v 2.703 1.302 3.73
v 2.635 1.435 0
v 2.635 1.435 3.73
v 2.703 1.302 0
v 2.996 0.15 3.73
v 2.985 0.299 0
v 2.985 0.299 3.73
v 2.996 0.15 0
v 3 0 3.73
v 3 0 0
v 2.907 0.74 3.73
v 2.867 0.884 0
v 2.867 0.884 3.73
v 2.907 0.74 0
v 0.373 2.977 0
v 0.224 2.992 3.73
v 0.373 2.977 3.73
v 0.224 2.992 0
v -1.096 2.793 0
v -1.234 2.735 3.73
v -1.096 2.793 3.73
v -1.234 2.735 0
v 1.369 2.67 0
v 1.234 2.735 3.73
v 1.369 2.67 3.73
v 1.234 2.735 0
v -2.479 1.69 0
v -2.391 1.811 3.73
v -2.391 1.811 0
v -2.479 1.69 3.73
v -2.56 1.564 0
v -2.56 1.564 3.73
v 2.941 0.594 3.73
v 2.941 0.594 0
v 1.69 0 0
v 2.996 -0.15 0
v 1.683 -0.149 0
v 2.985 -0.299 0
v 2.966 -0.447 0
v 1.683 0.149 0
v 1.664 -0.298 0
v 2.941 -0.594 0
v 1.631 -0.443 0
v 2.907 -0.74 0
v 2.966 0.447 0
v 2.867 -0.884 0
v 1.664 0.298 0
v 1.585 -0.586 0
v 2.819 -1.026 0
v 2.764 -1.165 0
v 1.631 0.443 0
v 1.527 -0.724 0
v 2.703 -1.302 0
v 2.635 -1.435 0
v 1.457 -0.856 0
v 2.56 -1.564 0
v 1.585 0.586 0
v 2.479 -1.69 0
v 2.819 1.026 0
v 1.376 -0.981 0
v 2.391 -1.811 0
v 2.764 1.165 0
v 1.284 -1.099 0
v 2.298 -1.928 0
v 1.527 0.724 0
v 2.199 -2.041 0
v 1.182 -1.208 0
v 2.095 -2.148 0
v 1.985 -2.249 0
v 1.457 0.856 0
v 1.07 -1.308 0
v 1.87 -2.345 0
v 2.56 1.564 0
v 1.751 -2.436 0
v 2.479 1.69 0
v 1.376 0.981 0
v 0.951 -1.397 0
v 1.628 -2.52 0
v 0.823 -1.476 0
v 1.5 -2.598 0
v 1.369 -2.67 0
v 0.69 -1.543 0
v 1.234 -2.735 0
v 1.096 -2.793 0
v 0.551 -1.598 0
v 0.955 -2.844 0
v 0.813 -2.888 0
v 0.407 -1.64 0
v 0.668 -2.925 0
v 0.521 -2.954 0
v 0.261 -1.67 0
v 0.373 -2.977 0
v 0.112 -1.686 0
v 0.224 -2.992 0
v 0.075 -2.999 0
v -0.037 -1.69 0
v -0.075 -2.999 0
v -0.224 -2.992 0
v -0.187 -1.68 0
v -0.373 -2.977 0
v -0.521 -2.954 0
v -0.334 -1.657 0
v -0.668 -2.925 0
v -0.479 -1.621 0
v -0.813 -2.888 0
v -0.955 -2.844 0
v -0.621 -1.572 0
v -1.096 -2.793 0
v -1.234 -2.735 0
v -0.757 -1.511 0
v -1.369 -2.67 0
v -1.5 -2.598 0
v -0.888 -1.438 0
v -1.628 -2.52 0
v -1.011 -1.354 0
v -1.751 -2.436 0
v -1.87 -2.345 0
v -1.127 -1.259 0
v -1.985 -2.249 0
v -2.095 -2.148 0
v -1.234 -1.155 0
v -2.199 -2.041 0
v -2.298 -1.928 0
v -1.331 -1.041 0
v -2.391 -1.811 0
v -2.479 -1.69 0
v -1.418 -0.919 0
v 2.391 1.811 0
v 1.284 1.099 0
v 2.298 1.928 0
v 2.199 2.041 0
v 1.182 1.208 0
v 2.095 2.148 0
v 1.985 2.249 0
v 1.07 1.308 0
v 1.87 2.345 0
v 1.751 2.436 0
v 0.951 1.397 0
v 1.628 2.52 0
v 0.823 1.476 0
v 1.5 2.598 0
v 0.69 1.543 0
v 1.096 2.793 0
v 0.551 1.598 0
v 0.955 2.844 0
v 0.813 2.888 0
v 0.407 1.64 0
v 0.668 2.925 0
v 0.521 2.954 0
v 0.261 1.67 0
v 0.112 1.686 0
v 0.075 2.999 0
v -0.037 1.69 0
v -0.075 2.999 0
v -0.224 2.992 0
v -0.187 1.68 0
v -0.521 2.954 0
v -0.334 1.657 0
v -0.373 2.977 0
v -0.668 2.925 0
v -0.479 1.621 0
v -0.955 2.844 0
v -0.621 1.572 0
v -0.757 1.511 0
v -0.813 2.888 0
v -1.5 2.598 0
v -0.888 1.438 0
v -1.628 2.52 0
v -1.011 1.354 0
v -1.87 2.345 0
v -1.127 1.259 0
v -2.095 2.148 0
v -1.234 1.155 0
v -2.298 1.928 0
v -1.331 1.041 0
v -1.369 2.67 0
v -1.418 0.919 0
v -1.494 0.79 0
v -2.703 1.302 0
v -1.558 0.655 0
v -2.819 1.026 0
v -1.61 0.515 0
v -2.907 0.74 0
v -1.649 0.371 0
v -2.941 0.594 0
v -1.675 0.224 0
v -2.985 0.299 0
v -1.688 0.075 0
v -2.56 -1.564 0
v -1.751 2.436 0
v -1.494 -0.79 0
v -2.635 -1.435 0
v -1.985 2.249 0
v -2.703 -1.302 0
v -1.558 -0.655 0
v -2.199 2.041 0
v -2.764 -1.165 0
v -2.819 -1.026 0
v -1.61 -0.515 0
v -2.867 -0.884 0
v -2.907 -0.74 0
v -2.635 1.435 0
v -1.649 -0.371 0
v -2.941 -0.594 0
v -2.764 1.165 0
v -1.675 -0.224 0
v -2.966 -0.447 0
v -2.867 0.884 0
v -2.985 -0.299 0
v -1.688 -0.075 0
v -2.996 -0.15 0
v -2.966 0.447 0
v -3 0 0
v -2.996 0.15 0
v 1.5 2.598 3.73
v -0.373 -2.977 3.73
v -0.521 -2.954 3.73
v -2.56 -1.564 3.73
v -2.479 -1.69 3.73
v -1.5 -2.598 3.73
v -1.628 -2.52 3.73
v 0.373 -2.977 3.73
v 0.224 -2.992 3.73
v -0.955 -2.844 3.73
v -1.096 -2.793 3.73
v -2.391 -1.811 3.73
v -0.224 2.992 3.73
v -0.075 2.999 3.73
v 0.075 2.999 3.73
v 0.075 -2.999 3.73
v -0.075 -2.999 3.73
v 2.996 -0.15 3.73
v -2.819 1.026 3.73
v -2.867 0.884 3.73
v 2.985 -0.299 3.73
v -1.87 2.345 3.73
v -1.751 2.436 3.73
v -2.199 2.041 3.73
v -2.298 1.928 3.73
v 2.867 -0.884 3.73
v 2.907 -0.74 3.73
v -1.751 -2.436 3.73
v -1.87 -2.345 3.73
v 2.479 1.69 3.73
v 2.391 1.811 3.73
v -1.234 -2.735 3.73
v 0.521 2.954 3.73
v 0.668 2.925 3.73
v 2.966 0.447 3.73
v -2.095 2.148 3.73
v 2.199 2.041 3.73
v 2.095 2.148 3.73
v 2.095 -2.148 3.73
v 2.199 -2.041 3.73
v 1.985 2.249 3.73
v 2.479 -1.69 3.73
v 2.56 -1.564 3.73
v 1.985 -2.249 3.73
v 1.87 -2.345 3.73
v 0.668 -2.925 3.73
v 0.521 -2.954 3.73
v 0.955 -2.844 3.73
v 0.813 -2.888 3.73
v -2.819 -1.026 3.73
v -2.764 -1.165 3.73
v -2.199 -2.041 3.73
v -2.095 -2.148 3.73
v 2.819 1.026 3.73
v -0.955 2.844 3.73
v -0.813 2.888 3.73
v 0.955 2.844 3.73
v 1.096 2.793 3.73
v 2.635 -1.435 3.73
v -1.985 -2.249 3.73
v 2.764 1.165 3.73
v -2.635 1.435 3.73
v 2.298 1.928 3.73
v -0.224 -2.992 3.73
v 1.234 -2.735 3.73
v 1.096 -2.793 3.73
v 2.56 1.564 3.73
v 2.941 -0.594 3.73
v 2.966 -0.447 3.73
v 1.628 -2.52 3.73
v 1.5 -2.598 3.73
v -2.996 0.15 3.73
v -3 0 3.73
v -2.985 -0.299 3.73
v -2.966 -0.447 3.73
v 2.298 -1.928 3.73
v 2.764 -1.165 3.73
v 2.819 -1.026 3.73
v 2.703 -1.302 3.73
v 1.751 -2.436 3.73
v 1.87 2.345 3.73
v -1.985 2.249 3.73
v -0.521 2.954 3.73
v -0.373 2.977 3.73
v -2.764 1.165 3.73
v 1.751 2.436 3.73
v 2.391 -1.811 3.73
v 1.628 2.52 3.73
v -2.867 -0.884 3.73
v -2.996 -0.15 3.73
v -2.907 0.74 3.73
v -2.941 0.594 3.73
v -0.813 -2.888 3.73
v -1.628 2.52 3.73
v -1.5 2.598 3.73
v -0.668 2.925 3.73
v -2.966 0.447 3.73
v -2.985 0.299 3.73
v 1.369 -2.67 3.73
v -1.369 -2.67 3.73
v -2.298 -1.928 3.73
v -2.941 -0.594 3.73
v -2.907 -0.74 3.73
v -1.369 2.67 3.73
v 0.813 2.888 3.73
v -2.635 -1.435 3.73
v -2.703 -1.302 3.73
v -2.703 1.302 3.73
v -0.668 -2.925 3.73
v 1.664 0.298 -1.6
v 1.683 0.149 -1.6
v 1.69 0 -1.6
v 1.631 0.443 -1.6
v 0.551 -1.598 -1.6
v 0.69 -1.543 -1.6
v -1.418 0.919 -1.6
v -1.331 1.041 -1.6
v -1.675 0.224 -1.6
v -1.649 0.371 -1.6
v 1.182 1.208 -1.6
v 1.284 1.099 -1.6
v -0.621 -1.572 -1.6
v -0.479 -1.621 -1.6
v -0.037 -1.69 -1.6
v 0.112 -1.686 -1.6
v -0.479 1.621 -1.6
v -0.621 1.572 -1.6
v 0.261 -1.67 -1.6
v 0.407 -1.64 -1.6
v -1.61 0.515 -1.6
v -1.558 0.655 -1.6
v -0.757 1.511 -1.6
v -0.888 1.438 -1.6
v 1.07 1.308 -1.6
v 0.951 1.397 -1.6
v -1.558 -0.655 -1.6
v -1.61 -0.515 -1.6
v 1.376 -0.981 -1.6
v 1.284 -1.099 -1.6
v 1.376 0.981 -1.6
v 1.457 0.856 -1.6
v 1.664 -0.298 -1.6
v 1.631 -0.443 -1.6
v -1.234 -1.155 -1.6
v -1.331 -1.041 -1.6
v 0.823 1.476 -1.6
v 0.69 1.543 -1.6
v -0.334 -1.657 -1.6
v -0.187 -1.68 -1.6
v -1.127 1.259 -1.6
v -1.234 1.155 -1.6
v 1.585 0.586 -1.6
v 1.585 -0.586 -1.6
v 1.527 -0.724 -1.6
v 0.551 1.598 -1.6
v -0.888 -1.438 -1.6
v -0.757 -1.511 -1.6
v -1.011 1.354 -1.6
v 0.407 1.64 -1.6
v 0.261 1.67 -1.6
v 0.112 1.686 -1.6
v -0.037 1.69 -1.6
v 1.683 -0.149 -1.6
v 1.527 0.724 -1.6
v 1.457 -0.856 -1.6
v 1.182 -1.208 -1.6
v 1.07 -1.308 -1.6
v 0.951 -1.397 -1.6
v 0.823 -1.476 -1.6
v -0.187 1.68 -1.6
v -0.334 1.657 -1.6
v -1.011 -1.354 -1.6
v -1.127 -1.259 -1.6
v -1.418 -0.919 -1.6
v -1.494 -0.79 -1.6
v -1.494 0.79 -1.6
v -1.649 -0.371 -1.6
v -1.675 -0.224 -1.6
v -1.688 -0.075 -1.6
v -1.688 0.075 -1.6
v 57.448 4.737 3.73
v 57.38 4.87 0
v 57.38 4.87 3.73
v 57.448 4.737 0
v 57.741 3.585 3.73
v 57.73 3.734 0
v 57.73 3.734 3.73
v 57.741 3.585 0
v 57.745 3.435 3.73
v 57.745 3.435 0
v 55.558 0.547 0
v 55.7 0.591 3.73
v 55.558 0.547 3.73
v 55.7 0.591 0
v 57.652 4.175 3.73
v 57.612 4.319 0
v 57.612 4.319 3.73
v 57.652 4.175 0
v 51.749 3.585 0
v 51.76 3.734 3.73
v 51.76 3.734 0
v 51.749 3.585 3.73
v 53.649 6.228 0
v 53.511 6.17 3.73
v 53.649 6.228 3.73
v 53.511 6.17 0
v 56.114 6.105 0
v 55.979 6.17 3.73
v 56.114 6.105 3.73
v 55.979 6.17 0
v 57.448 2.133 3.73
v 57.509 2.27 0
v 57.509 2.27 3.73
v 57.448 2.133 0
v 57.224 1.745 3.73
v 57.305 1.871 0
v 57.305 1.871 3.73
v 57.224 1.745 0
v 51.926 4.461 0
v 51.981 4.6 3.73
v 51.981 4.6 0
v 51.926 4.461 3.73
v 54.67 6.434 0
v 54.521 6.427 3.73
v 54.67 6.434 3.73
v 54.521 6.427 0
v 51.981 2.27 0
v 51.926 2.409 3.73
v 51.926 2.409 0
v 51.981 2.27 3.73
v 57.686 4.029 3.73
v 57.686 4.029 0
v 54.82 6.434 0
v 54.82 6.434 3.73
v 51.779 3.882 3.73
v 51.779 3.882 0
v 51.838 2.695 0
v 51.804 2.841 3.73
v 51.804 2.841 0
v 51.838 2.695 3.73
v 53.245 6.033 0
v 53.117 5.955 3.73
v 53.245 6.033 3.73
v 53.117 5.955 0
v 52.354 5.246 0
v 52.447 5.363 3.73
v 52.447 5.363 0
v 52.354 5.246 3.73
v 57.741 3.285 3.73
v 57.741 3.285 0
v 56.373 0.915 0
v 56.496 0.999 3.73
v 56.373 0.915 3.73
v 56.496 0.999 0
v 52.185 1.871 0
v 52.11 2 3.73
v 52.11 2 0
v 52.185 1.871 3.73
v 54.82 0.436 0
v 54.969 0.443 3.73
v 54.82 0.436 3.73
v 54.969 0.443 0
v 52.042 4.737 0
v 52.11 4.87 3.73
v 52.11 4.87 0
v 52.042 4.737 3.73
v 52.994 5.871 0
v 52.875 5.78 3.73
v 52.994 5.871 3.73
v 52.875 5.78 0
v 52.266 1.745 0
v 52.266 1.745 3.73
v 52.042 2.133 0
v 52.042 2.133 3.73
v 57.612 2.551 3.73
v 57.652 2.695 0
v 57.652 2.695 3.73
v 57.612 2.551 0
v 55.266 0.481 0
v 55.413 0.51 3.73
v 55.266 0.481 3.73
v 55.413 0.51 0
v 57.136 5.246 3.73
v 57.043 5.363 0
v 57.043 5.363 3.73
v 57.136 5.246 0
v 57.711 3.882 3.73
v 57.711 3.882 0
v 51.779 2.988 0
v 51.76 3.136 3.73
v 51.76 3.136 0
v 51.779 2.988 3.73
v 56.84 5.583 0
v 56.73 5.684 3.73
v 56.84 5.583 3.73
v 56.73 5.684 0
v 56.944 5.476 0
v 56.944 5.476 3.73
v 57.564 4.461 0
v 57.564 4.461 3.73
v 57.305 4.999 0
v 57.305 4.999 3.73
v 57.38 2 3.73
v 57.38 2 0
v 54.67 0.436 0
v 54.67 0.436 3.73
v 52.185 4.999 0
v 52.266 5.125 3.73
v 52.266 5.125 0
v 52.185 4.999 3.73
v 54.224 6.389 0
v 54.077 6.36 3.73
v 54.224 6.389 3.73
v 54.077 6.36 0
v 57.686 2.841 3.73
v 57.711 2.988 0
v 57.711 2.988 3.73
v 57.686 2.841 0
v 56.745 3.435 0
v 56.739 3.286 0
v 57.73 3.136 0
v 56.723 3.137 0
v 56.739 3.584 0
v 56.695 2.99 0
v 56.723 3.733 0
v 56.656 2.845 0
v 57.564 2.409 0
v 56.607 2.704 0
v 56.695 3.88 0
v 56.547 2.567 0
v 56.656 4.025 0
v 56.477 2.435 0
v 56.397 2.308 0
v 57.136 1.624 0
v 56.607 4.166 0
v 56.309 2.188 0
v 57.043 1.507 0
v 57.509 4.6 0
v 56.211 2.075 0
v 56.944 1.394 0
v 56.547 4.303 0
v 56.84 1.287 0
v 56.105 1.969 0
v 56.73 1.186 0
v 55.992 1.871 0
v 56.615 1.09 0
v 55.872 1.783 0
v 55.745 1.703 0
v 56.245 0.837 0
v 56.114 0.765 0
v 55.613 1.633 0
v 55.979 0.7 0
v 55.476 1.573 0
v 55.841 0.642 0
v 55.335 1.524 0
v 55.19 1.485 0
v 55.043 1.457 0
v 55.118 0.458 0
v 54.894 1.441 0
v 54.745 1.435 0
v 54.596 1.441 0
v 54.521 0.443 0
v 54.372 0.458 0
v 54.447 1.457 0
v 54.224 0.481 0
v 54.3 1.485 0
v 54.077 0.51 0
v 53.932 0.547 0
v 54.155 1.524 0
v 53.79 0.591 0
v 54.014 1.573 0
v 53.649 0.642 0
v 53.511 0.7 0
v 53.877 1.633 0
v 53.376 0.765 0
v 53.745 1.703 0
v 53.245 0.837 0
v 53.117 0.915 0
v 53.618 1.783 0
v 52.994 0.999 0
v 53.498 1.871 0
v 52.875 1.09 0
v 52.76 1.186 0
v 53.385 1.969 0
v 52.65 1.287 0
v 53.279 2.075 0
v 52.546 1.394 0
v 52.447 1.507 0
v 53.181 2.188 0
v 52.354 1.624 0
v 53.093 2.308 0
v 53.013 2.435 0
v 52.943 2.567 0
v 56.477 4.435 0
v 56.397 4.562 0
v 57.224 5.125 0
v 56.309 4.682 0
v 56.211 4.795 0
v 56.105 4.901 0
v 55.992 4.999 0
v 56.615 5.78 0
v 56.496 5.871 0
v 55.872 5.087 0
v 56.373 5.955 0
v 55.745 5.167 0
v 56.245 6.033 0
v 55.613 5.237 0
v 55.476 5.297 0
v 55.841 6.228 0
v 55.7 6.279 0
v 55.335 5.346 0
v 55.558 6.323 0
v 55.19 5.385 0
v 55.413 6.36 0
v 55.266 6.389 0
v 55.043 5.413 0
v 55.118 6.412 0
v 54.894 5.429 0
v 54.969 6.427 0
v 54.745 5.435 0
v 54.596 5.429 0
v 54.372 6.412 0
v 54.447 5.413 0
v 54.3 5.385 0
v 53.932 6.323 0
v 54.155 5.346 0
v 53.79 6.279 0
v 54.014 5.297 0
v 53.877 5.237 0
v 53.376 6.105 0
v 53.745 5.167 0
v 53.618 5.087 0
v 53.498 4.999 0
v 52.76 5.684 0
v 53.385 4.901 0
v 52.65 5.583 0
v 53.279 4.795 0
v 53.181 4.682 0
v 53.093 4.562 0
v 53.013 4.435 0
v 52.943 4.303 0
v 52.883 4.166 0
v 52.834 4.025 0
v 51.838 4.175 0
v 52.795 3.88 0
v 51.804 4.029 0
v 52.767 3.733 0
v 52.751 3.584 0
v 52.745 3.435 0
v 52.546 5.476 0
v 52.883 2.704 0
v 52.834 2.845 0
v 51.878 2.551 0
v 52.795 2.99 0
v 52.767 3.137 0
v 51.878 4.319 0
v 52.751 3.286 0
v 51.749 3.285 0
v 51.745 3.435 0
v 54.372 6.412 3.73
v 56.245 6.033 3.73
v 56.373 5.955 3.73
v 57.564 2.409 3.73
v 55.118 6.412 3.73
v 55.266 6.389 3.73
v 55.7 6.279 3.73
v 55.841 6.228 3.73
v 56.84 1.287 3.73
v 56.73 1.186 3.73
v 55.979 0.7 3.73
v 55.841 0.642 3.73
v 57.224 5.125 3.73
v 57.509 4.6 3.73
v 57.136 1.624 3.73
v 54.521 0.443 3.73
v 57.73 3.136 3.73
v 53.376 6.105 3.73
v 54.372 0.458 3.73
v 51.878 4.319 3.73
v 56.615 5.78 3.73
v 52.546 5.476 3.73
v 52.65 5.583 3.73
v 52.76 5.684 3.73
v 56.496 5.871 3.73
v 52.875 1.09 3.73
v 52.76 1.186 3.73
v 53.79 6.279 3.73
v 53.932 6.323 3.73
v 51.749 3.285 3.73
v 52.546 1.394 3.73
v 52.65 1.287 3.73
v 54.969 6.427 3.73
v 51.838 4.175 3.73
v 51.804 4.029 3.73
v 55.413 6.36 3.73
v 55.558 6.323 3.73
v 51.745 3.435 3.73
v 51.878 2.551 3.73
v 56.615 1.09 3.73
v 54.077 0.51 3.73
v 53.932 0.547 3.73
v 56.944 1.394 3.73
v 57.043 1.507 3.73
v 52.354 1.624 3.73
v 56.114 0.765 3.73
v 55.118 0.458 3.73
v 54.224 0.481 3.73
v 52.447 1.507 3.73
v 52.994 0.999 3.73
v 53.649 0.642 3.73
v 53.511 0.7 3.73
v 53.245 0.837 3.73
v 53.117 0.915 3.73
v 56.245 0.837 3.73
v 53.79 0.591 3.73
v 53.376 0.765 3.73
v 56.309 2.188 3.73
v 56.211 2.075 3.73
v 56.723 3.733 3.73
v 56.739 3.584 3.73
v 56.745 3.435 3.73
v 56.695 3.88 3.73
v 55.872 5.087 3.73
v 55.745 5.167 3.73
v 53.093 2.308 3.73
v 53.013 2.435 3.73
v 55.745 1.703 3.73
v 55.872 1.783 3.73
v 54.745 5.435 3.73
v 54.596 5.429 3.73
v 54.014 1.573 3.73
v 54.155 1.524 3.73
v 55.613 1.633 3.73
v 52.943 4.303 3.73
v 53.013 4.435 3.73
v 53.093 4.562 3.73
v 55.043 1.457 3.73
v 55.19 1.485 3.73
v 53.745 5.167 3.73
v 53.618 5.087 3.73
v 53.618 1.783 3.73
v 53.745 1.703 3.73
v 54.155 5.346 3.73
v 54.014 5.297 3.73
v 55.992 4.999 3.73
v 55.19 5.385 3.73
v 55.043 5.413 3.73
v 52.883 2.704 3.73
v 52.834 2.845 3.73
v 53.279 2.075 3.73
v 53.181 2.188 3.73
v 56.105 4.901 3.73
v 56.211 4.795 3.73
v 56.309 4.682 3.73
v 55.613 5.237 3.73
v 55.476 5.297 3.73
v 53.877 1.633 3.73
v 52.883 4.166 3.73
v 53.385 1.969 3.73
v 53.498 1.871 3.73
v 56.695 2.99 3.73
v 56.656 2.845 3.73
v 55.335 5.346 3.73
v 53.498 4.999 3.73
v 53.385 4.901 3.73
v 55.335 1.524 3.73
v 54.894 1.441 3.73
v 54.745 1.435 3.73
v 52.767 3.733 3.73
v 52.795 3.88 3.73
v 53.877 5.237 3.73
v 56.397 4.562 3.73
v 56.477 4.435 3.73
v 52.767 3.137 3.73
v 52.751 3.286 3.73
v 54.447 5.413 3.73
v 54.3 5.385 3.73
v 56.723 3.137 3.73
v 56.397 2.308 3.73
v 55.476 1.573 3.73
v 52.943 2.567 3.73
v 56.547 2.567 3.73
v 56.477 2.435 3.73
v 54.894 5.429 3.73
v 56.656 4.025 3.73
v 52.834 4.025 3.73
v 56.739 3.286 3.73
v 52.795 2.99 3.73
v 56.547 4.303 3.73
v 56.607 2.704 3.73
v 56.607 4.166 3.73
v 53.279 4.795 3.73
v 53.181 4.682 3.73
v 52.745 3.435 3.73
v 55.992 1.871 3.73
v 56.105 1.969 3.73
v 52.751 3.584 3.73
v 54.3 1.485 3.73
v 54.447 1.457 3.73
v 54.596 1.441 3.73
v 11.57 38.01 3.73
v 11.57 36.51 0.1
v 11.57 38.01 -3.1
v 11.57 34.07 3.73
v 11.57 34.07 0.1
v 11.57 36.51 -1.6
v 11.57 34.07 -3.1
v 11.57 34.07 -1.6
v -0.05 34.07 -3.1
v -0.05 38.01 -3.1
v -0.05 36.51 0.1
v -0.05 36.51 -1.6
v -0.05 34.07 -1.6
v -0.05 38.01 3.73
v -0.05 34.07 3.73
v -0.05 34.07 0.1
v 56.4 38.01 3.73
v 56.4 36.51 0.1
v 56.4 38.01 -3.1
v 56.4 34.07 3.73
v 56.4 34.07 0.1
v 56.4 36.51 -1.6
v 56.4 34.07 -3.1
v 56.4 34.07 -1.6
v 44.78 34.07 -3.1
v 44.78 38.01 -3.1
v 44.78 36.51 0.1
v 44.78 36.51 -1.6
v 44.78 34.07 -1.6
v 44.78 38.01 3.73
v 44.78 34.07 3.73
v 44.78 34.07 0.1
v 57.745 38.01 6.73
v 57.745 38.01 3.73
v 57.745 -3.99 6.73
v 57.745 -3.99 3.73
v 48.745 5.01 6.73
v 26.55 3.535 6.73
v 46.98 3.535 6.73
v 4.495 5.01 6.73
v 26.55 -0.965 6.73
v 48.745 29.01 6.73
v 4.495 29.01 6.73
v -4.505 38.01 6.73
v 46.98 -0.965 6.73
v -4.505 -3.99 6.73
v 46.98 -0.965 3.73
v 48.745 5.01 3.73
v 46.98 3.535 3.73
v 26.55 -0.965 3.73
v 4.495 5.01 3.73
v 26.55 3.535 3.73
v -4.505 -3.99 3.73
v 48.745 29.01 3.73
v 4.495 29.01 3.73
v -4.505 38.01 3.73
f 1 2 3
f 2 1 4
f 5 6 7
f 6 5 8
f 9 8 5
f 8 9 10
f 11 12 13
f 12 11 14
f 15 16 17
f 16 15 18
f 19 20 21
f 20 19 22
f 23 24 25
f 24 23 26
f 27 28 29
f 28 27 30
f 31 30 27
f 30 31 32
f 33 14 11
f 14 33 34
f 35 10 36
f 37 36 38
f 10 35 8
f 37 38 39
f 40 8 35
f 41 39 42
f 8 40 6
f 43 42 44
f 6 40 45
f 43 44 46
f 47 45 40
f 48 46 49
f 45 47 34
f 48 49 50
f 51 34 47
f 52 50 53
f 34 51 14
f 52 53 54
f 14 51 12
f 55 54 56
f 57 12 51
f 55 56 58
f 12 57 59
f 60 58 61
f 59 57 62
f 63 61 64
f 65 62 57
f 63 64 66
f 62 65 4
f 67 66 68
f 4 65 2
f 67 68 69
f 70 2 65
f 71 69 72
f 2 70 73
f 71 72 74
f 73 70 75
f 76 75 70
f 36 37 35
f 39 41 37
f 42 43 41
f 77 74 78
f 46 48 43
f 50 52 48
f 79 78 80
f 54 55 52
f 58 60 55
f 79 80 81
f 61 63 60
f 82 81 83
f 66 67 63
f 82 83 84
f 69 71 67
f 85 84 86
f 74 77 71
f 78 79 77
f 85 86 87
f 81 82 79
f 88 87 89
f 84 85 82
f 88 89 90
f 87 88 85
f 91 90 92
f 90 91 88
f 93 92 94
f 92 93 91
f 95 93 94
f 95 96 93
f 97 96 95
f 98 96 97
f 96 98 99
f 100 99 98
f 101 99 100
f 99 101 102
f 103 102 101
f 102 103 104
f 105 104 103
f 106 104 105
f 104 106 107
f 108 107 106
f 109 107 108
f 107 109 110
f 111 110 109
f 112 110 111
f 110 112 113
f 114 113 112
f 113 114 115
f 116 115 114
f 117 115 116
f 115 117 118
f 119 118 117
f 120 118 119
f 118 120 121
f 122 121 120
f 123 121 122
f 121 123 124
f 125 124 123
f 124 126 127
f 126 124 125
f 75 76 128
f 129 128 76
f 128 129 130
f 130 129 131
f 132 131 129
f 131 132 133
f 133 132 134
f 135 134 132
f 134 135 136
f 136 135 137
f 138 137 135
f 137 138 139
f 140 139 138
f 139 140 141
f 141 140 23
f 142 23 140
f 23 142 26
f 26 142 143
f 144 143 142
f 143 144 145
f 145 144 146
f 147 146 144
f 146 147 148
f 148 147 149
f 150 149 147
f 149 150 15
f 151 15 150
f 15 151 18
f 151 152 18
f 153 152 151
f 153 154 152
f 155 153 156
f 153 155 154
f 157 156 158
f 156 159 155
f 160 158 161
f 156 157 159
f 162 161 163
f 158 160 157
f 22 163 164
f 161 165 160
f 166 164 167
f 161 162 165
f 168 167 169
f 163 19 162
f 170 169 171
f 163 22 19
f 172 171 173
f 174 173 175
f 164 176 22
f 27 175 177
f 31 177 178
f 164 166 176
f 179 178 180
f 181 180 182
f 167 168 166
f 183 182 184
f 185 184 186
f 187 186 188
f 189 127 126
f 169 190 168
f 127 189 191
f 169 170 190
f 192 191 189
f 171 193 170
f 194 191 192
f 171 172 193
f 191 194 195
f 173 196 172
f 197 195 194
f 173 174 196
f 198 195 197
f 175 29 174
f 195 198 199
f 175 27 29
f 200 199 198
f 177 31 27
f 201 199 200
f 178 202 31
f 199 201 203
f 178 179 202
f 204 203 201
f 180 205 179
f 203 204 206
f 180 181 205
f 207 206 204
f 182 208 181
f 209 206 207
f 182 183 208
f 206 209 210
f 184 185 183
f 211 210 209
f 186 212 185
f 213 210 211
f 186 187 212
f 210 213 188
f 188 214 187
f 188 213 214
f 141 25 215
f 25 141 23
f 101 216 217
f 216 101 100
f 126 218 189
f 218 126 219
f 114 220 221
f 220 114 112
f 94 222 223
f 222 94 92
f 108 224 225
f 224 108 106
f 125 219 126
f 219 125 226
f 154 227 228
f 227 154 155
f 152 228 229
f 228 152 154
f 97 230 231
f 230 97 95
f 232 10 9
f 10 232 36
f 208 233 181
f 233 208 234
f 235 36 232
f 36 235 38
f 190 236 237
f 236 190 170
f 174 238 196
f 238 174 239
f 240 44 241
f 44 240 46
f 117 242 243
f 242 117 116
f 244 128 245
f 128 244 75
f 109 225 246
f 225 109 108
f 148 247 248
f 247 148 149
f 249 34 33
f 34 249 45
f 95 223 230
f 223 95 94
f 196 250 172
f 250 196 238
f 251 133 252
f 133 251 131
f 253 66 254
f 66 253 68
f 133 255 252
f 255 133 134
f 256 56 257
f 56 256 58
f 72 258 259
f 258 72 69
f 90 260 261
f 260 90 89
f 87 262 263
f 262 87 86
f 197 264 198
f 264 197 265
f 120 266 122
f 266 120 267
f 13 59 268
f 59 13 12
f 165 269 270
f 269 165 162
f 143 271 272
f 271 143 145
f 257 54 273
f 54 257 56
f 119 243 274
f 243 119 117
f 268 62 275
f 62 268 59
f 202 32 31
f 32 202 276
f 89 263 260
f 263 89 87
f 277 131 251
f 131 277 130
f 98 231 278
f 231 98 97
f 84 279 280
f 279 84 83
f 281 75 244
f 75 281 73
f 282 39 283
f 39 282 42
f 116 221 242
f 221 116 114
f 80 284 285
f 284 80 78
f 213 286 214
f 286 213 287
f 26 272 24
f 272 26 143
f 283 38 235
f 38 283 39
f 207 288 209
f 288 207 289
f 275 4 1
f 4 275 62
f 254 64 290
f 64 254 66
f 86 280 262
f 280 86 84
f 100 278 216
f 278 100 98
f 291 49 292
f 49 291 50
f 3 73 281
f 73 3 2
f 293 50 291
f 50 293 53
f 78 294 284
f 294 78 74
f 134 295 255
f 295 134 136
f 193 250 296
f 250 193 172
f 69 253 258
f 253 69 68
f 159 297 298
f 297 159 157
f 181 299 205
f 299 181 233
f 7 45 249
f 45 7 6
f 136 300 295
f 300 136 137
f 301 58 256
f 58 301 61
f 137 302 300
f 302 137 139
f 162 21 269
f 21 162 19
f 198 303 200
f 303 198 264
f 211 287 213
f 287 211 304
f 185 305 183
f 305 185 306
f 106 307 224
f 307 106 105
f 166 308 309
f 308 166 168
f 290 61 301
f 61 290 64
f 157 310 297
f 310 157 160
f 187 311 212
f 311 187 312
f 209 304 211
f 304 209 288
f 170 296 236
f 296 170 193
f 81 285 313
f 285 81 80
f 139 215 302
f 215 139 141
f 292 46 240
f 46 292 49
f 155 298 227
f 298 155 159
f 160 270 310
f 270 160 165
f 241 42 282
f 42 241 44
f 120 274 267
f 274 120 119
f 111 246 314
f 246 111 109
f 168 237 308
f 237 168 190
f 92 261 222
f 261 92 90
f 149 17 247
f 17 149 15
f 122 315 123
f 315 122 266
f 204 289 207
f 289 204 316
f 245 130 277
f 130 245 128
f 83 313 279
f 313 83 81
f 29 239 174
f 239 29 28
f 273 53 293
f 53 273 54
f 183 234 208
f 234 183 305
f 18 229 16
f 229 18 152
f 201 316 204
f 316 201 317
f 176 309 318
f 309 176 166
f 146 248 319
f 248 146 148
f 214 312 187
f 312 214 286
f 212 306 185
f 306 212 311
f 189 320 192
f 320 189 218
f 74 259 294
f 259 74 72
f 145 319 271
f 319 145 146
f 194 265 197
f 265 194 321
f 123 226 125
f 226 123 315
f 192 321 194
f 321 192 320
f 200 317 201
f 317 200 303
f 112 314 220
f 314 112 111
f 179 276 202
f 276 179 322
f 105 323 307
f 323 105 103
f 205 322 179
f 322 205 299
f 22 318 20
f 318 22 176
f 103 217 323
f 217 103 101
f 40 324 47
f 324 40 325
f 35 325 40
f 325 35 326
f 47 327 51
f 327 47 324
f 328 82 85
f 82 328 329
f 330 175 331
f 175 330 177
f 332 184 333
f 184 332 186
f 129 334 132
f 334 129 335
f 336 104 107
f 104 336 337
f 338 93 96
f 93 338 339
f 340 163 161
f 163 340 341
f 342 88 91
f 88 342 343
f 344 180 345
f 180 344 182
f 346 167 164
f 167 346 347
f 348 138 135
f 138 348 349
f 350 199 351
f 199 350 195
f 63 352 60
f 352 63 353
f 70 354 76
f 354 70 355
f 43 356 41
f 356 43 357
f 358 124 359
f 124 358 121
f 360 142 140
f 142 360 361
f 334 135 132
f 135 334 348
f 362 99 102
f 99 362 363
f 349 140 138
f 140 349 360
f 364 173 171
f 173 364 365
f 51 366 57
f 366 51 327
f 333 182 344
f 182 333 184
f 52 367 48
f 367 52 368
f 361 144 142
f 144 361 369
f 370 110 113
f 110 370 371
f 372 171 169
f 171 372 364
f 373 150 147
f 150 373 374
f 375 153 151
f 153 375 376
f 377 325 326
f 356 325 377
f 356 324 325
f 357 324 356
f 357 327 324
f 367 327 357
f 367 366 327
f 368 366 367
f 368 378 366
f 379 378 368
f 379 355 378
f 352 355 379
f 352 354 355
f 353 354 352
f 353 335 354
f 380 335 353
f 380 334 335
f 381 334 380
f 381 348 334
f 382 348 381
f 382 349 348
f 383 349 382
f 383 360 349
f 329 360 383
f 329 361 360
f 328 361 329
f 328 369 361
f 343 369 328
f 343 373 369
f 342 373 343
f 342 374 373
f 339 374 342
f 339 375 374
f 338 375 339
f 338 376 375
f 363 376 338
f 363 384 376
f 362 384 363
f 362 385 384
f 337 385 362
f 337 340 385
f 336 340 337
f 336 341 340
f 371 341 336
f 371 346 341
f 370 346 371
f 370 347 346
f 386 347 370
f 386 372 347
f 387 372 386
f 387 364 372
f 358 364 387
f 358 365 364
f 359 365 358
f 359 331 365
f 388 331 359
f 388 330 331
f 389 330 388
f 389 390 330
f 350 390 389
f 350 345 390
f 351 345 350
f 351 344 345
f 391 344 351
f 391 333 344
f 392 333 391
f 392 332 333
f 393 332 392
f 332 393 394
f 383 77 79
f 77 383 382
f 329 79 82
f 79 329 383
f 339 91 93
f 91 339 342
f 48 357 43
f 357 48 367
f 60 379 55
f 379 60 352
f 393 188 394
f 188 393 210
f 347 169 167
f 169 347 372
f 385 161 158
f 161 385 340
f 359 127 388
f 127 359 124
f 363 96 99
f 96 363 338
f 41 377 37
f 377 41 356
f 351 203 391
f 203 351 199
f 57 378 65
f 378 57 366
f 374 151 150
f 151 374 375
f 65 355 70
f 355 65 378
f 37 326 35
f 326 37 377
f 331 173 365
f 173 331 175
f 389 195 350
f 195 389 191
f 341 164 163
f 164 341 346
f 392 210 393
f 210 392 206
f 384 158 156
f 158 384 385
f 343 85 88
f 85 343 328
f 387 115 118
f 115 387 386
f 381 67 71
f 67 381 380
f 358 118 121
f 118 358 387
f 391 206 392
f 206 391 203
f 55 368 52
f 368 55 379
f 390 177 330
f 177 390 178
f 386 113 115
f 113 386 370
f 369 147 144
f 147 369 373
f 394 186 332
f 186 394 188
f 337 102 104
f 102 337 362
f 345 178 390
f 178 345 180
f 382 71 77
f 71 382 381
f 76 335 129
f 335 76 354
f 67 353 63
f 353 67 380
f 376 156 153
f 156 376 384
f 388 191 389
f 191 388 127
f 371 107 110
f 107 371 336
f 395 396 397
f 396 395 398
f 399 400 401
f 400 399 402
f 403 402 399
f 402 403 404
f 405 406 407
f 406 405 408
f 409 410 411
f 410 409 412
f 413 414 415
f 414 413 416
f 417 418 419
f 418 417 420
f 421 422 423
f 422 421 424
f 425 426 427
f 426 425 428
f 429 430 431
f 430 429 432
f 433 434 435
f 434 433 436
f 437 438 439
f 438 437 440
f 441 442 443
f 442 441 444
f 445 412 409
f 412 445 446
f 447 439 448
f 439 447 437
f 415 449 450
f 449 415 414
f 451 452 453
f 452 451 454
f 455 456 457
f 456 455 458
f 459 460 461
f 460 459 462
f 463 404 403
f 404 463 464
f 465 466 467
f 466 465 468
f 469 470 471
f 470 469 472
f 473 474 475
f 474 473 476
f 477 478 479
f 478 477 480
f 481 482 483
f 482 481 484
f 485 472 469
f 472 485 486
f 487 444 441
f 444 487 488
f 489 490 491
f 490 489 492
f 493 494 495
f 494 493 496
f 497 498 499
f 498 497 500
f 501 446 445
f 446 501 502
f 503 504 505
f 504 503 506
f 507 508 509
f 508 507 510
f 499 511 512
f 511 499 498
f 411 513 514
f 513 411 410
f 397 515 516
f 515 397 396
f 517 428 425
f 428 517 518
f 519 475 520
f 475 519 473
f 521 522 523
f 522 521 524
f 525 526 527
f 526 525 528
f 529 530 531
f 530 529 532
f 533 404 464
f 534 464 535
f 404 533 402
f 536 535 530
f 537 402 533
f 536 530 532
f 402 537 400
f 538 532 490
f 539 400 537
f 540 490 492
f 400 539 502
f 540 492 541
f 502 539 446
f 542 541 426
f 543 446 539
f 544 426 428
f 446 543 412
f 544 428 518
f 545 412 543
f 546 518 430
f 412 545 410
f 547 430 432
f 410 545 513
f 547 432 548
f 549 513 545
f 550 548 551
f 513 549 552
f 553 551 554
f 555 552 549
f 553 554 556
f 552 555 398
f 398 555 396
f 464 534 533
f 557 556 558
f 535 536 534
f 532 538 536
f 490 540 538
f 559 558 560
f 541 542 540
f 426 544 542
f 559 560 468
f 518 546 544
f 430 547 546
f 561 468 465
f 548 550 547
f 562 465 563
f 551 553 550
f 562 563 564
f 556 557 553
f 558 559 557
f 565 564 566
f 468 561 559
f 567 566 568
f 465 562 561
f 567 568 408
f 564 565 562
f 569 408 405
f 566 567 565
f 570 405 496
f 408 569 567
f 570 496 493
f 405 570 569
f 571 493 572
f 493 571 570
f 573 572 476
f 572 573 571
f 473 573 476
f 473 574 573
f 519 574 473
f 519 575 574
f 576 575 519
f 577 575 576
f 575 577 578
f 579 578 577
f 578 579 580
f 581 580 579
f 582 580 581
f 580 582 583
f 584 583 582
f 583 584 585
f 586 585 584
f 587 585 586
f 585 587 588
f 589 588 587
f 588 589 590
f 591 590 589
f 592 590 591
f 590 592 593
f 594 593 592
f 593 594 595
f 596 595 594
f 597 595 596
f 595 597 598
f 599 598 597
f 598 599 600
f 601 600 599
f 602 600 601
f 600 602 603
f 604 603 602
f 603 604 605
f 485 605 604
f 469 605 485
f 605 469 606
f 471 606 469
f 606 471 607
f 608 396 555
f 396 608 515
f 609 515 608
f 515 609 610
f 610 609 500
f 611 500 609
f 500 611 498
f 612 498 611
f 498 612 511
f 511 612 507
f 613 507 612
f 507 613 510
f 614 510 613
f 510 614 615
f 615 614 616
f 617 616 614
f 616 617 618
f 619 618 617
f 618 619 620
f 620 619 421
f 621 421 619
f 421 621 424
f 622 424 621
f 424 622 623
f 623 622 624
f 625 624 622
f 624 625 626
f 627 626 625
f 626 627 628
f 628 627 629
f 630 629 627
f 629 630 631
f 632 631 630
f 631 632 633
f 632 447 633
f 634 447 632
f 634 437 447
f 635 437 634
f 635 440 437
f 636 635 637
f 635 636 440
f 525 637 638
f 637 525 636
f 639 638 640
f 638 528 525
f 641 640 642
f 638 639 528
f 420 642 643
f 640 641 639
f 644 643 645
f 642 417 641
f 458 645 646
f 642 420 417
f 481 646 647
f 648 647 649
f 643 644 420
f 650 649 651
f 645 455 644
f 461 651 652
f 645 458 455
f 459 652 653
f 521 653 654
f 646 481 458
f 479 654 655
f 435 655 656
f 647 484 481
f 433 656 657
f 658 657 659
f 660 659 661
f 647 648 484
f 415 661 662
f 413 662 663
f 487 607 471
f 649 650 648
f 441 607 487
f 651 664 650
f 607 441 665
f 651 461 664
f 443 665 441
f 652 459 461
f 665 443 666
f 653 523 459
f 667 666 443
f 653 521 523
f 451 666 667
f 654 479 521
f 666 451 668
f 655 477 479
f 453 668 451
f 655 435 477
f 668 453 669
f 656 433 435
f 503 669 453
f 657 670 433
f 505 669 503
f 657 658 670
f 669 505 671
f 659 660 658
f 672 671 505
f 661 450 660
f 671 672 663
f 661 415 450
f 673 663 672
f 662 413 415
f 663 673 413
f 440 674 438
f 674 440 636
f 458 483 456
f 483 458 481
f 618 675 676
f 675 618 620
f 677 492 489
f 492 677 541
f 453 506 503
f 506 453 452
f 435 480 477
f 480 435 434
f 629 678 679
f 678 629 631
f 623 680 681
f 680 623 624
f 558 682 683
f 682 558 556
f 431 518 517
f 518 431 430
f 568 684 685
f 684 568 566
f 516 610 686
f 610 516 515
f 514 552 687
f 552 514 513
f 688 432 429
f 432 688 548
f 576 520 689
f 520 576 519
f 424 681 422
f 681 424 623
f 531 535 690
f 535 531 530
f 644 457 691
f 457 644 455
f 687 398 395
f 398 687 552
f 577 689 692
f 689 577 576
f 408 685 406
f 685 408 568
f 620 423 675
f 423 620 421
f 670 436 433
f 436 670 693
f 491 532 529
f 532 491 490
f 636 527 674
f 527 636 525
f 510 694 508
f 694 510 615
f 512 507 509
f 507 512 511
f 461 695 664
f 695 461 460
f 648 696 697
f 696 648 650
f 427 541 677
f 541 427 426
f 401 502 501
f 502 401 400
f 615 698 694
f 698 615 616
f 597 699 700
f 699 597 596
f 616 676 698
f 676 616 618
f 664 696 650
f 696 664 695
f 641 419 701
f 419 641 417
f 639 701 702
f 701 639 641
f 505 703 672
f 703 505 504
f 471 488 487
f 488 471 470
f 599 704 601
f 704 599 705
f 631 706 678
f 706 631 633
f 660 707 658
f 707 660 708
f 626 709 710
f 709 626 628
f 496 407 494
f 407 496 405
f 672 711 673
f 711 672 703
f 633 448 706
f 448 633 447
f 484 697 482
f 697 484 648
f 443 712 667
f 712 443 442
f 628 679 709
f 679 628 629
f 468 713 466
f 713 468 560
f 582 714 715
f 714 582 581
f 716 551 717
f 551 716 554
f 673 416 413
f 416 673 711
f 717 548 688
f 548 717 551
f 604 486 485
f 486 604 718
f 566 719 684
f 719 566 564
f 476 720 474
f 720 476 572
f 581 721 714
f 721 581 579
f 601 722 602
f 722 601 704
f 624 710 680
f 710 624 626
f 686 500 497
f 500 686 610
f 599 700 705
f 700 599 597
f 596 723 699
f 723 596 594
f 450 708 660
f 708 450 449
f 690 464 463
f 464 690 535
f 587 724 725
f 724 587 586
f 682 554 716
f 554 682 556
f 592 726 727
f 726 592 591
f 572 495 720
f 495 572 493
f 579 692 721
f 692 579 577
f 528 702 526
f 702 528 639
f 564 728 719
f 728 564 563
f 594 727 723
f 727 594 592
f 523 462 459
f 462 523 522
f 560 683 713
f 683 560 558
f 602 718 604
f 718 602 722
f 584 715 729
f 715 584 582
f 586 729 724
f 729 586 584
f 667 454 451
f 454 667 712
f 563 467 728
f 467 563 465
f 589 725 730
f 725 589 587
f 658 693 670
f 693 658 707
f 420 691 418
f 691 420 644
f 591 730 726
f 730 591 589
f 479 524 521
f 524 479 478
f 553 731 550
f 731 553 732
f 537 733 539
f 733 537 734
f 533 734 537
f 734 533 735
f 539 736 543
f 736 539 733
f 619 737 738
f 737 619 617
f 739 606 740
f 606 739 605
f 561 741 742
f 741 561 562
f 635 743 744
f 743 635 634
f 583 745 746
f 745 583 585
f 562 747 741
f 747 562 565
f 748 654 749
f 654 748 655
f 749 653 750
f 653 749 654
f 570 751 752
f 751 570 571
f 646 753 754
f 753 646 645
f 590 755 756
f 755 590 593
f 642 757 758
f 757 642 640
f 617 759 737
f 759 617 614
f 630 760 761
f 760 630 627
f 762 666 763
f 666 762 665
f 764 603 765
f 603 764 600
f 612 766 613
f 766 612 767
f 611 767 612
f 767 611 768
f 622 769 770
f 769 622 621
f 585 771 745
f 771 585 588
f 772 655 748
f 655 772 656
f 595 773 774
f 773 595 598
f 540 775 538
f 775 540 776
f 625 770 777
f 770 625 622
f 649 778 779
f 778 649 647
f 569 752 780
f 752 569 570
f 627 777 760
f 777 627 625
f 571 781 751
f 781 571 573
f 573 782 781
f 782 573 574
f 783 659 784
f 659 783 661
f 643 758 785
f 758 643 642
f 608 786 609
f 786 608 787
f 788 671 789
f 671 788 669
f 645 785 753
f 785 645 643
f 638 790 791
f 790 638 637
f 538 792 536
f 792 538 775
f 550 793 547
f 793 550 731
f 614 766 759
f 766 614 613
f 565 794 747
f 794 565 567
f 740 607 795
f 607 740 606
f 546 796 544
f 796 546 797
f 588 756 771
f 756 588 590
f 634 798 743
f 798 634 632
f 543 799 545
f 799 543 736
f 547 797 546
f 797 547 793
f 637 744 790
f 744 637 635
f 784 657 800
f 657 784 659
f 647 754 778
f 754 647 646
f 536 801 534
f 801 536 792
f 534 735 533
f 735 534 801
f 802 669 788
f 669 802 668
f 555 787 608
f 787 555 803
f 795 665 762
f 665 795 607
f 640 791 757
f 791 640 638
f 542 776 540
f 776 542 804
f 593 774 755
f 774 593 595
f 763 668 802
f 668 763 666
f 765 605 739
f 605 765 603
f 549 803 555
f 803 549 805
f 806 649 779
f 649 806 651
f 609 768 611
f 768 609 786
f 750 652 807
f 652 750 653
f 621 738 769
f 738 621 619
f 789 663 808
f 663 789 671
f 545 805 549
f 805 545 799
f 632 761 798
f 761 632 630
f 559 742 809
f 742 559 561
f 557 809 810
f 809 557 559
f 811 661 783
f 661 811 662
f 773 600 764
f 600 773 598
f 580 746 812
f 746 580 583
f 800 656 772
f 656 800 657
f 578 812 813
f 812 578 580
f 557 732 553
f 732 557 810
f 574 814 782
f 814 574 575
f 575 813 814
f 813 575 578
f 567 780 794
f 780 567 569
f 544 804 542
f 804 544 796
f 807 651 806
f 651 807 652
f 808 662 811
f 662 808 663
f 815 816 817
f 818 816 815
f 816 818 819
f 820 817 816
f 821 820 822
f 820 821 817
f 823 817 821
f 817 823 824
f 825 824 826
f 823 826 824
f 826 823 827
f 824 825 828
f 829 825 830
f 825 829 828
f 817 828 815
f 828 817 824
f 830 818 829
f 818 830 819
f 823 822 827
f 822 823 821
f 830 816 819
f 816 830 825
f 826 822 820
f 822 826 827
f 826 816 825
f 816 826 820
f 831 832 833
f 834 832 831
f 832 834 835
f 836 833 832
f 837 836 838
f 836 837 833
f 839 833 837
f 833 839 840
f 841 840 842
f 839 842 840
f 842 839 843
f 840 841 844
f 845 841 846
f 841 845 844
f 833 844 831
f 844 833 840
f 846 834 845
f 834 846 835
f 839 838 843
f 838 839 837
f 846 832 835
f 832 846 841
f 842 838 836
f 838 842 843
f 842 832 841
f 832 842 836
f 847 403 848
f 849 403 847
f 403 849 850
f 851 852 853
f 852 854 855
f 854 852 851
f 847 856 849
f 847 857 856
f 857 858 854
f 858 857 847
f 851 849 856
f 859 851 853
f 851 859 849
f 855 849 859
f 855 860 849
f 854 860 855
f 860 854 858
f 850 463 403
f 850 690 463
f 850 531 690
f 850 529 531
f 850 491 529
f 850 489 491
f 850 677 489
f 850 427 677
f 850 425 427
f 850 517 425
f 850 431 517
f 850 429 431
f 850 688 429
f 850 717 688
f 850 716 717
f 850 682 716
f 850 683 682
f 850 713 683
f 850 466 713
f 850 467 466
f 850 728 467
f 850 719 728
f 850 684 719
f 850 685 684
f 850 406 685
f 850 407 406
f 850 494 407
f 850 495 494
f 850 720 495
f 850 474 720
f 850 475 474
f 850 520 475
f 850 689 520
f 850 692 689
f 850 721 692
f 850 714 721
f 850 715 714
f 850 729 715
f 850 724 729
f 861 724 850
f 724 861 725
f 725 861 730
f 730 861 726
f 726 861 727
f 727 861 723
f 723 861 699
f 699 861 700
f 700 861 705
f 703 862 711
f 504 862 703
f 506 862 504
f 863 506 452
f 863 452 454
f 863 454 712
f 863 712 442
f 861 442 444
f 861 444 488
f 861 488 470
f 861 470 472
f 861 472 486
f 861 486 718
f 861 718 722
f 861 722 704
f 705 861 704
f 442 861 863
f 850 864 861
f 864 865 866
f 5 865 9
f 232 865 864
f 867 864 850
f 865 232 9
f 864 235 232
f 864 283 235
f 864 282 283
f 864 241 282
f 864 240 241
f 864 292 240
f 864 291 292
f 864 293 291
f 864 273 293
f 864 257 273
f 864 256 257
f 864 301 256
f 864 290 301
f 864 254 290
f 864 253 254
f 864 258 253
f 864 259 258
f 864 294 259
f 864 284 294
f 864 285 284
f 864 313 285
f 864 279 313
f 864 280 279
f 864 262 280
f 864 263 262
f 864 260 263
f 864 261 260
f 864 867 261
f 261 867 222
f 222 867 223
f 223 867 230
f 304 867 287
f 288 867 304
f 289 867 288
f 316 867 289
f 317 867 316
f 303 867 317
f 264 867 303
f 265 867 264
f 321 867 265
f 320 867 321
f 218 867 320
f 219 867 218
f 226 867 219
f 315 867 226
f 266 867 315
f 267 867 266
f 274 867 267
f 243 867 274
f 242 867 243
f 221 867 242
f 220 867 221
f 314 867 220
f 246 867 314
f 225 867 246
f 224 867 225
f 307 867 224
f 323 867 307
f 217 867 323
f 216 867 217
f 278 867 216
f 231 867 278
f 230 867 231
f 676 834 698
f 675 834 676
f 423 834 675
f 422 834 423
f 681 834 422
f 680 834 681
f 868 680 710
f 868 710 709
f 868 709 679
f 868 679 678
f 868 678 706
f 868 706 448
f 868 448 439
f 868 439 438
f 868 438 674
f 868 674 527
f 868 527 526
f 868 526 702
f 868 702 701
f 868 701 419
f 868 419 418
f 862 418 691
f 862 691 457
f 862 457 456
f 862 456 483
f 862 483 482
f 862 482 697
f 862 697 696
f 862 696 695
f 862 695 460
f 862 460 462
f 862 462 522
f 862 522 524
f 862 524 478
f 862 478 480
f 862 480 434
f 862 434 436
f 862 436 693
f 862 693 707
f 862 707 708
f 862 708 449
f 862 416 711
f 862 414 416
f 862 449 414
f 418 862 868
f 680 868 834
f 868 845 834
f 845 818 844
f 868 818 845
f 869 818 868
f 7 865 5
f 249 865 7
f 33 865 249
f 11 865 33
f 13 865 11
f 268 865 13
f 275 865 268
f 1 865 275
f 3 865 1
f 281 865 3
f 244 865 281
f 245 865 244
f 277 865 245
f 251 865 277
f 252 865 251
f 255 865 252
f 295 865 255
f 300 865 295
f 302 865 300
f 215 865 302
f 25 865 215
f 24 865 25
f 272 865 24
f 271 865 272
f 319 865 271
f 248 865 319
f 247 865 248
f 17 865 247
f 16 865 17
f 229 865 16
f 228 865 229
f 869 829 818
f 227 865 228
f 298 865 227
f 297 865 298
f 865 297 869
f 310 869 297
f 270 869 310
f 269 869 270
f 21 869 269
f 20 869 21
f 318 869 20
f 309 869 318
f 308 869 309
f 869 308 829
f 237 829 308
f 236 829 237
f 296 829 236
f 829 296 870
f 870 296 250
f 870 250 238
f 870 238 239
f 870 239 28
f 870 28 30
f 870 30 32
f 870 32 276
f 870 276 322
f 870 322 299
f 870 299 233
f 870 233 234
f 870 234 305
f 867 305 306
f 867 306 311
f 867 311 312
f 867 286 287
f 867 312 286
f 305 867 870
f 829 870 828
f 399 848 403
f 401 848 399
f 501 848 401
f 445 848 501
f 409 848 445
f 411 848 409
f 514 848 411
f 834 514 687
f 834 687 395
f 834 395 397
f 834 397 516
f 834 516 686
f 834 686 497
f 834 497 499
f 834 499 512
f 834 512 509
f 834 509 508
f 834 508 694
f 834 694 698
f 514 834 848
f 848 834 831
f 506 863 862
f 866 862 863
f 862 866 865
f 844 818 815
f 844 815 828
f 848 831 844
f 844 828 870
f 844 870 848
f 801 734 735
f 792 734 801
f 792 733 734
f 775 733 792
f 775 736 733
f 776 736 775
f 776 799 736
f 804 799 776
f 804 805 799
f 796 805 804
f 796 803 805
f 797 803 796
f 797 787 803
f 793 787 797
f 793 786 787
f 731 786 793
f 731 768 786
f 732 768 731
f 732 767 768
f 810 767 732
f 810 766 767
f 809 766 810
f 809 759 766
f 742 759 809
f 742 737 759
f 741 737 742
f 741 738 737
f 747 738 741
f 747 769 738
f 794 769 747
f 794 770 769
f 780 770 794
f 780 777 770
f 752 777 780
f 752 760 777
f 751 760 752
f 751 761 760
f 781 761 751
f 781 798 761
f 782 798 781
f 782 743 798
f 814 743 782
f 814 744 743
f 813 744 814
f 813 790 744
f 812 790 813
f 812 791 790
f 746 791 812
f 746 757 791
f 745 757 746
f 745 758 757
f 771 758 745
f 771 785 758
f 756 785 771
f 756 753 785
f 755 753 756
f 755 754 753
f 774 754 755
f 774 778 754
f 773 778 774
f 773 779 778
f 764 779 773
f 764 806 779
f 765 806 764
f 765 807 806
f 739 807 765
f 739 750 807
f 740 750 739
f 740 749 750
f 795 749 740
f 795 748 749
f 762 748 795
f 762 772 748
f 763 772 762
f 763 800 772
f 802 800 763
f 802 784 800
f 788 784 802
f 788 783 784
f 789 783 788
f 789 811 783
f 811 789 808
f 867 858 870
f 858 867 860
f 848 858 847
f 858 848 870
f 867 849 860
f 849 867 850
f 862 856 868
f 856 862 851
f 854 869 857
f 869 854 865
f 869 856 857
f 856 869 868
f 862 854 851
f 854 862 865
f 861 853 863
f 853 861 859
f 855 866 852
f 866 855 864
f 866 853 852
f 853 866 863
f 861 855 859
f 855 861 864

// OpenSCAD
$fa = $preview ? 12 : 1;
$fs = $preview ?  2 : 0.15;

y_pot = 19.90 + 3.88 / 2;
x_pot = 58.96 + 3.88 / 2;
x_hole = 4.53 + 3.25 / 2;
y_hole = 23.65 + 3.25 / 2;
y_top = 59.85;
x_connector = 23.31 + 1.65 / 2;
y_connector = 22.30 + 1.65 / 2;

pcb_thickness = 1.60;
pc104_length = 21.32 - 8.49 + 0.5;
top_standoff_height = 5.00;
bottom_standoff_height = pc104_length - pcb_thickness - top_standoff_height;

pcb_notch_width = 12.12 - 0.5;
pcb_notch_height = 2.44;

pcb_stand_off_overhang_y = 2.00;
pcb_stand_off_overhang_z = 1.50;
pcb_stand_off_height = pcb_notch_height + pcb_stand_off_overhang_z;

module notch_stand_off() {
    difference() {
        translate([0, 0, -(pcb_thickness + pcb_stand_off_overhang_z)]) {
            thickness = pcb_stand_off_overhang_z + pcb_thickness + bottom_standoff_height;
            cube([pcb_notch_width, pcb_stand_off_height, thickness]);
        }
        translate([0, 0, -pcb_thickness]) {
            height = pcb_notch_height + pcb_stand_off_overhang_z;
            thickness = pcb_stand_off_overhang_z + pcb_thickness + bottom_standoff_height;
            cube([pcb_notch_width, pcb_notch_height, pcb_thickness + 0.1]);
        }
    }
}


standoff1_knurl_height = 5.00;
standoff1_knurl_diameter = 4.00;  // Use superclue.
standoff1_diameter = 6.00;
standoff1_offset_x = x_pot - x_hole;
standoff1_offset_y = y_hole - y_pot;

module standoff1() {
    difference() {
        cylinder(bottom_standoff_height, d = standoff1_diameter, true);
        cylinder(1.5 * standoff1_knurl_height, d = standoff1_knurl_diameter, true);
    }
}

standoff_pot_pcb_hole_diameter = 3.88 - 0.5;
standoff_pot_diameter = standoff1_diameter;

module standoff_pot() {
    union() {
        cylinder(bottom_standoff_height, d = standoff_pot_diameter, true);
        translate([0, 0, -pcb_thickness]) {
            cylinder(pcb_thickness, d = standoff_pot_pcb_hole_diameter, true);
        }
    }
}

pcb_stand_off1_offset_x = x_pot - (48.83 + 12.12);
pcb_stand_off1_offset_y = y_top - pcb_stand_off_height - y_pot;
pcb_stand_off2_offset_x = x_pot - (4.00 + 12.12);;
pcb_stand_off2_offset_y = pcb_stand_off1_offset_y;

module bottom_standoffs()
{
    union() {
        standoff_pot();
        translate([standoff1_offset_x, standoff1_offset_y, 0]) {
            standoff1();
        }
        translate([pcb_stand_off1_offset_x, pcb_stand_off1_offset_y, 0]) {
            notch_stand_off();
        }
        translate([pcb_stand_off2_offset_x, pcb_stand_off2_offset_y, 0]) {
            notch_stand_off();
        }
    }
}

module plate() {
    plate_width = 62.25;
    plate_height = 42.00;
    plate_thickness = 3.00;
    plate_radius = 2;
    plate_bar_size = 9.00;

    module plate() {
        difference() {
            cube([plate_width, plate_height, plate_thickness]);
            translate([plate_bar_size, plate_bar_size, 0]) {
                cube([plate_width - 2 * plate_bar_size, plate_height - 2 * plate_bar_size, plate_thickness]);
            }
        }
    }

    x = (standoff1_offset_x + standoff1_diameter / 2) - plate_width;
    y = pcb_stand_off1_offset_y + pcb_stand_off_height - plate_height;
    z = bottom_standoff_height - plate_thickness;
    translate([x, y, z]) {
        union() {
            plate();
        }
    }
}

connector_opening_width = 18.43 + 2.0;
connector_opening_height = 2.50 + 2.0;
connector_opening_offeset_x = x_pot - x_connector;
connector_opening_offeset_y = y_connector - y_pot;

module connector_opening() {
    translate([connector_opening_offeset_x, connector_opening_offeset_y, 0]) {
        cube([connector_opening_width, connector_opening_height, 100], center = true);
    }
}

module mount() {
    difference() {
        union() {
            bottom_standoffs();
            plate();
        }
        connector_opening();
    }
}

module top_standoff() {
    // m2 x 3
    top_standoff_diameter = 7.00;
    top_standoff_knurl_height = 3.05;
    top_standoff_knurl_diameter = 3.50;

    difference() {
        cylinder(top_standoff_height, d = top_standoff_diameter, true);
        translate([0, 0, top_standoff_height - 1.5 * top_standoff_knurl_height]) {
            cylinder(1.5 * top_standoff_knurl_height, d = top_standoff_knurl_diameter, true);
        }
    }
}


// top_standoff();

mount();
